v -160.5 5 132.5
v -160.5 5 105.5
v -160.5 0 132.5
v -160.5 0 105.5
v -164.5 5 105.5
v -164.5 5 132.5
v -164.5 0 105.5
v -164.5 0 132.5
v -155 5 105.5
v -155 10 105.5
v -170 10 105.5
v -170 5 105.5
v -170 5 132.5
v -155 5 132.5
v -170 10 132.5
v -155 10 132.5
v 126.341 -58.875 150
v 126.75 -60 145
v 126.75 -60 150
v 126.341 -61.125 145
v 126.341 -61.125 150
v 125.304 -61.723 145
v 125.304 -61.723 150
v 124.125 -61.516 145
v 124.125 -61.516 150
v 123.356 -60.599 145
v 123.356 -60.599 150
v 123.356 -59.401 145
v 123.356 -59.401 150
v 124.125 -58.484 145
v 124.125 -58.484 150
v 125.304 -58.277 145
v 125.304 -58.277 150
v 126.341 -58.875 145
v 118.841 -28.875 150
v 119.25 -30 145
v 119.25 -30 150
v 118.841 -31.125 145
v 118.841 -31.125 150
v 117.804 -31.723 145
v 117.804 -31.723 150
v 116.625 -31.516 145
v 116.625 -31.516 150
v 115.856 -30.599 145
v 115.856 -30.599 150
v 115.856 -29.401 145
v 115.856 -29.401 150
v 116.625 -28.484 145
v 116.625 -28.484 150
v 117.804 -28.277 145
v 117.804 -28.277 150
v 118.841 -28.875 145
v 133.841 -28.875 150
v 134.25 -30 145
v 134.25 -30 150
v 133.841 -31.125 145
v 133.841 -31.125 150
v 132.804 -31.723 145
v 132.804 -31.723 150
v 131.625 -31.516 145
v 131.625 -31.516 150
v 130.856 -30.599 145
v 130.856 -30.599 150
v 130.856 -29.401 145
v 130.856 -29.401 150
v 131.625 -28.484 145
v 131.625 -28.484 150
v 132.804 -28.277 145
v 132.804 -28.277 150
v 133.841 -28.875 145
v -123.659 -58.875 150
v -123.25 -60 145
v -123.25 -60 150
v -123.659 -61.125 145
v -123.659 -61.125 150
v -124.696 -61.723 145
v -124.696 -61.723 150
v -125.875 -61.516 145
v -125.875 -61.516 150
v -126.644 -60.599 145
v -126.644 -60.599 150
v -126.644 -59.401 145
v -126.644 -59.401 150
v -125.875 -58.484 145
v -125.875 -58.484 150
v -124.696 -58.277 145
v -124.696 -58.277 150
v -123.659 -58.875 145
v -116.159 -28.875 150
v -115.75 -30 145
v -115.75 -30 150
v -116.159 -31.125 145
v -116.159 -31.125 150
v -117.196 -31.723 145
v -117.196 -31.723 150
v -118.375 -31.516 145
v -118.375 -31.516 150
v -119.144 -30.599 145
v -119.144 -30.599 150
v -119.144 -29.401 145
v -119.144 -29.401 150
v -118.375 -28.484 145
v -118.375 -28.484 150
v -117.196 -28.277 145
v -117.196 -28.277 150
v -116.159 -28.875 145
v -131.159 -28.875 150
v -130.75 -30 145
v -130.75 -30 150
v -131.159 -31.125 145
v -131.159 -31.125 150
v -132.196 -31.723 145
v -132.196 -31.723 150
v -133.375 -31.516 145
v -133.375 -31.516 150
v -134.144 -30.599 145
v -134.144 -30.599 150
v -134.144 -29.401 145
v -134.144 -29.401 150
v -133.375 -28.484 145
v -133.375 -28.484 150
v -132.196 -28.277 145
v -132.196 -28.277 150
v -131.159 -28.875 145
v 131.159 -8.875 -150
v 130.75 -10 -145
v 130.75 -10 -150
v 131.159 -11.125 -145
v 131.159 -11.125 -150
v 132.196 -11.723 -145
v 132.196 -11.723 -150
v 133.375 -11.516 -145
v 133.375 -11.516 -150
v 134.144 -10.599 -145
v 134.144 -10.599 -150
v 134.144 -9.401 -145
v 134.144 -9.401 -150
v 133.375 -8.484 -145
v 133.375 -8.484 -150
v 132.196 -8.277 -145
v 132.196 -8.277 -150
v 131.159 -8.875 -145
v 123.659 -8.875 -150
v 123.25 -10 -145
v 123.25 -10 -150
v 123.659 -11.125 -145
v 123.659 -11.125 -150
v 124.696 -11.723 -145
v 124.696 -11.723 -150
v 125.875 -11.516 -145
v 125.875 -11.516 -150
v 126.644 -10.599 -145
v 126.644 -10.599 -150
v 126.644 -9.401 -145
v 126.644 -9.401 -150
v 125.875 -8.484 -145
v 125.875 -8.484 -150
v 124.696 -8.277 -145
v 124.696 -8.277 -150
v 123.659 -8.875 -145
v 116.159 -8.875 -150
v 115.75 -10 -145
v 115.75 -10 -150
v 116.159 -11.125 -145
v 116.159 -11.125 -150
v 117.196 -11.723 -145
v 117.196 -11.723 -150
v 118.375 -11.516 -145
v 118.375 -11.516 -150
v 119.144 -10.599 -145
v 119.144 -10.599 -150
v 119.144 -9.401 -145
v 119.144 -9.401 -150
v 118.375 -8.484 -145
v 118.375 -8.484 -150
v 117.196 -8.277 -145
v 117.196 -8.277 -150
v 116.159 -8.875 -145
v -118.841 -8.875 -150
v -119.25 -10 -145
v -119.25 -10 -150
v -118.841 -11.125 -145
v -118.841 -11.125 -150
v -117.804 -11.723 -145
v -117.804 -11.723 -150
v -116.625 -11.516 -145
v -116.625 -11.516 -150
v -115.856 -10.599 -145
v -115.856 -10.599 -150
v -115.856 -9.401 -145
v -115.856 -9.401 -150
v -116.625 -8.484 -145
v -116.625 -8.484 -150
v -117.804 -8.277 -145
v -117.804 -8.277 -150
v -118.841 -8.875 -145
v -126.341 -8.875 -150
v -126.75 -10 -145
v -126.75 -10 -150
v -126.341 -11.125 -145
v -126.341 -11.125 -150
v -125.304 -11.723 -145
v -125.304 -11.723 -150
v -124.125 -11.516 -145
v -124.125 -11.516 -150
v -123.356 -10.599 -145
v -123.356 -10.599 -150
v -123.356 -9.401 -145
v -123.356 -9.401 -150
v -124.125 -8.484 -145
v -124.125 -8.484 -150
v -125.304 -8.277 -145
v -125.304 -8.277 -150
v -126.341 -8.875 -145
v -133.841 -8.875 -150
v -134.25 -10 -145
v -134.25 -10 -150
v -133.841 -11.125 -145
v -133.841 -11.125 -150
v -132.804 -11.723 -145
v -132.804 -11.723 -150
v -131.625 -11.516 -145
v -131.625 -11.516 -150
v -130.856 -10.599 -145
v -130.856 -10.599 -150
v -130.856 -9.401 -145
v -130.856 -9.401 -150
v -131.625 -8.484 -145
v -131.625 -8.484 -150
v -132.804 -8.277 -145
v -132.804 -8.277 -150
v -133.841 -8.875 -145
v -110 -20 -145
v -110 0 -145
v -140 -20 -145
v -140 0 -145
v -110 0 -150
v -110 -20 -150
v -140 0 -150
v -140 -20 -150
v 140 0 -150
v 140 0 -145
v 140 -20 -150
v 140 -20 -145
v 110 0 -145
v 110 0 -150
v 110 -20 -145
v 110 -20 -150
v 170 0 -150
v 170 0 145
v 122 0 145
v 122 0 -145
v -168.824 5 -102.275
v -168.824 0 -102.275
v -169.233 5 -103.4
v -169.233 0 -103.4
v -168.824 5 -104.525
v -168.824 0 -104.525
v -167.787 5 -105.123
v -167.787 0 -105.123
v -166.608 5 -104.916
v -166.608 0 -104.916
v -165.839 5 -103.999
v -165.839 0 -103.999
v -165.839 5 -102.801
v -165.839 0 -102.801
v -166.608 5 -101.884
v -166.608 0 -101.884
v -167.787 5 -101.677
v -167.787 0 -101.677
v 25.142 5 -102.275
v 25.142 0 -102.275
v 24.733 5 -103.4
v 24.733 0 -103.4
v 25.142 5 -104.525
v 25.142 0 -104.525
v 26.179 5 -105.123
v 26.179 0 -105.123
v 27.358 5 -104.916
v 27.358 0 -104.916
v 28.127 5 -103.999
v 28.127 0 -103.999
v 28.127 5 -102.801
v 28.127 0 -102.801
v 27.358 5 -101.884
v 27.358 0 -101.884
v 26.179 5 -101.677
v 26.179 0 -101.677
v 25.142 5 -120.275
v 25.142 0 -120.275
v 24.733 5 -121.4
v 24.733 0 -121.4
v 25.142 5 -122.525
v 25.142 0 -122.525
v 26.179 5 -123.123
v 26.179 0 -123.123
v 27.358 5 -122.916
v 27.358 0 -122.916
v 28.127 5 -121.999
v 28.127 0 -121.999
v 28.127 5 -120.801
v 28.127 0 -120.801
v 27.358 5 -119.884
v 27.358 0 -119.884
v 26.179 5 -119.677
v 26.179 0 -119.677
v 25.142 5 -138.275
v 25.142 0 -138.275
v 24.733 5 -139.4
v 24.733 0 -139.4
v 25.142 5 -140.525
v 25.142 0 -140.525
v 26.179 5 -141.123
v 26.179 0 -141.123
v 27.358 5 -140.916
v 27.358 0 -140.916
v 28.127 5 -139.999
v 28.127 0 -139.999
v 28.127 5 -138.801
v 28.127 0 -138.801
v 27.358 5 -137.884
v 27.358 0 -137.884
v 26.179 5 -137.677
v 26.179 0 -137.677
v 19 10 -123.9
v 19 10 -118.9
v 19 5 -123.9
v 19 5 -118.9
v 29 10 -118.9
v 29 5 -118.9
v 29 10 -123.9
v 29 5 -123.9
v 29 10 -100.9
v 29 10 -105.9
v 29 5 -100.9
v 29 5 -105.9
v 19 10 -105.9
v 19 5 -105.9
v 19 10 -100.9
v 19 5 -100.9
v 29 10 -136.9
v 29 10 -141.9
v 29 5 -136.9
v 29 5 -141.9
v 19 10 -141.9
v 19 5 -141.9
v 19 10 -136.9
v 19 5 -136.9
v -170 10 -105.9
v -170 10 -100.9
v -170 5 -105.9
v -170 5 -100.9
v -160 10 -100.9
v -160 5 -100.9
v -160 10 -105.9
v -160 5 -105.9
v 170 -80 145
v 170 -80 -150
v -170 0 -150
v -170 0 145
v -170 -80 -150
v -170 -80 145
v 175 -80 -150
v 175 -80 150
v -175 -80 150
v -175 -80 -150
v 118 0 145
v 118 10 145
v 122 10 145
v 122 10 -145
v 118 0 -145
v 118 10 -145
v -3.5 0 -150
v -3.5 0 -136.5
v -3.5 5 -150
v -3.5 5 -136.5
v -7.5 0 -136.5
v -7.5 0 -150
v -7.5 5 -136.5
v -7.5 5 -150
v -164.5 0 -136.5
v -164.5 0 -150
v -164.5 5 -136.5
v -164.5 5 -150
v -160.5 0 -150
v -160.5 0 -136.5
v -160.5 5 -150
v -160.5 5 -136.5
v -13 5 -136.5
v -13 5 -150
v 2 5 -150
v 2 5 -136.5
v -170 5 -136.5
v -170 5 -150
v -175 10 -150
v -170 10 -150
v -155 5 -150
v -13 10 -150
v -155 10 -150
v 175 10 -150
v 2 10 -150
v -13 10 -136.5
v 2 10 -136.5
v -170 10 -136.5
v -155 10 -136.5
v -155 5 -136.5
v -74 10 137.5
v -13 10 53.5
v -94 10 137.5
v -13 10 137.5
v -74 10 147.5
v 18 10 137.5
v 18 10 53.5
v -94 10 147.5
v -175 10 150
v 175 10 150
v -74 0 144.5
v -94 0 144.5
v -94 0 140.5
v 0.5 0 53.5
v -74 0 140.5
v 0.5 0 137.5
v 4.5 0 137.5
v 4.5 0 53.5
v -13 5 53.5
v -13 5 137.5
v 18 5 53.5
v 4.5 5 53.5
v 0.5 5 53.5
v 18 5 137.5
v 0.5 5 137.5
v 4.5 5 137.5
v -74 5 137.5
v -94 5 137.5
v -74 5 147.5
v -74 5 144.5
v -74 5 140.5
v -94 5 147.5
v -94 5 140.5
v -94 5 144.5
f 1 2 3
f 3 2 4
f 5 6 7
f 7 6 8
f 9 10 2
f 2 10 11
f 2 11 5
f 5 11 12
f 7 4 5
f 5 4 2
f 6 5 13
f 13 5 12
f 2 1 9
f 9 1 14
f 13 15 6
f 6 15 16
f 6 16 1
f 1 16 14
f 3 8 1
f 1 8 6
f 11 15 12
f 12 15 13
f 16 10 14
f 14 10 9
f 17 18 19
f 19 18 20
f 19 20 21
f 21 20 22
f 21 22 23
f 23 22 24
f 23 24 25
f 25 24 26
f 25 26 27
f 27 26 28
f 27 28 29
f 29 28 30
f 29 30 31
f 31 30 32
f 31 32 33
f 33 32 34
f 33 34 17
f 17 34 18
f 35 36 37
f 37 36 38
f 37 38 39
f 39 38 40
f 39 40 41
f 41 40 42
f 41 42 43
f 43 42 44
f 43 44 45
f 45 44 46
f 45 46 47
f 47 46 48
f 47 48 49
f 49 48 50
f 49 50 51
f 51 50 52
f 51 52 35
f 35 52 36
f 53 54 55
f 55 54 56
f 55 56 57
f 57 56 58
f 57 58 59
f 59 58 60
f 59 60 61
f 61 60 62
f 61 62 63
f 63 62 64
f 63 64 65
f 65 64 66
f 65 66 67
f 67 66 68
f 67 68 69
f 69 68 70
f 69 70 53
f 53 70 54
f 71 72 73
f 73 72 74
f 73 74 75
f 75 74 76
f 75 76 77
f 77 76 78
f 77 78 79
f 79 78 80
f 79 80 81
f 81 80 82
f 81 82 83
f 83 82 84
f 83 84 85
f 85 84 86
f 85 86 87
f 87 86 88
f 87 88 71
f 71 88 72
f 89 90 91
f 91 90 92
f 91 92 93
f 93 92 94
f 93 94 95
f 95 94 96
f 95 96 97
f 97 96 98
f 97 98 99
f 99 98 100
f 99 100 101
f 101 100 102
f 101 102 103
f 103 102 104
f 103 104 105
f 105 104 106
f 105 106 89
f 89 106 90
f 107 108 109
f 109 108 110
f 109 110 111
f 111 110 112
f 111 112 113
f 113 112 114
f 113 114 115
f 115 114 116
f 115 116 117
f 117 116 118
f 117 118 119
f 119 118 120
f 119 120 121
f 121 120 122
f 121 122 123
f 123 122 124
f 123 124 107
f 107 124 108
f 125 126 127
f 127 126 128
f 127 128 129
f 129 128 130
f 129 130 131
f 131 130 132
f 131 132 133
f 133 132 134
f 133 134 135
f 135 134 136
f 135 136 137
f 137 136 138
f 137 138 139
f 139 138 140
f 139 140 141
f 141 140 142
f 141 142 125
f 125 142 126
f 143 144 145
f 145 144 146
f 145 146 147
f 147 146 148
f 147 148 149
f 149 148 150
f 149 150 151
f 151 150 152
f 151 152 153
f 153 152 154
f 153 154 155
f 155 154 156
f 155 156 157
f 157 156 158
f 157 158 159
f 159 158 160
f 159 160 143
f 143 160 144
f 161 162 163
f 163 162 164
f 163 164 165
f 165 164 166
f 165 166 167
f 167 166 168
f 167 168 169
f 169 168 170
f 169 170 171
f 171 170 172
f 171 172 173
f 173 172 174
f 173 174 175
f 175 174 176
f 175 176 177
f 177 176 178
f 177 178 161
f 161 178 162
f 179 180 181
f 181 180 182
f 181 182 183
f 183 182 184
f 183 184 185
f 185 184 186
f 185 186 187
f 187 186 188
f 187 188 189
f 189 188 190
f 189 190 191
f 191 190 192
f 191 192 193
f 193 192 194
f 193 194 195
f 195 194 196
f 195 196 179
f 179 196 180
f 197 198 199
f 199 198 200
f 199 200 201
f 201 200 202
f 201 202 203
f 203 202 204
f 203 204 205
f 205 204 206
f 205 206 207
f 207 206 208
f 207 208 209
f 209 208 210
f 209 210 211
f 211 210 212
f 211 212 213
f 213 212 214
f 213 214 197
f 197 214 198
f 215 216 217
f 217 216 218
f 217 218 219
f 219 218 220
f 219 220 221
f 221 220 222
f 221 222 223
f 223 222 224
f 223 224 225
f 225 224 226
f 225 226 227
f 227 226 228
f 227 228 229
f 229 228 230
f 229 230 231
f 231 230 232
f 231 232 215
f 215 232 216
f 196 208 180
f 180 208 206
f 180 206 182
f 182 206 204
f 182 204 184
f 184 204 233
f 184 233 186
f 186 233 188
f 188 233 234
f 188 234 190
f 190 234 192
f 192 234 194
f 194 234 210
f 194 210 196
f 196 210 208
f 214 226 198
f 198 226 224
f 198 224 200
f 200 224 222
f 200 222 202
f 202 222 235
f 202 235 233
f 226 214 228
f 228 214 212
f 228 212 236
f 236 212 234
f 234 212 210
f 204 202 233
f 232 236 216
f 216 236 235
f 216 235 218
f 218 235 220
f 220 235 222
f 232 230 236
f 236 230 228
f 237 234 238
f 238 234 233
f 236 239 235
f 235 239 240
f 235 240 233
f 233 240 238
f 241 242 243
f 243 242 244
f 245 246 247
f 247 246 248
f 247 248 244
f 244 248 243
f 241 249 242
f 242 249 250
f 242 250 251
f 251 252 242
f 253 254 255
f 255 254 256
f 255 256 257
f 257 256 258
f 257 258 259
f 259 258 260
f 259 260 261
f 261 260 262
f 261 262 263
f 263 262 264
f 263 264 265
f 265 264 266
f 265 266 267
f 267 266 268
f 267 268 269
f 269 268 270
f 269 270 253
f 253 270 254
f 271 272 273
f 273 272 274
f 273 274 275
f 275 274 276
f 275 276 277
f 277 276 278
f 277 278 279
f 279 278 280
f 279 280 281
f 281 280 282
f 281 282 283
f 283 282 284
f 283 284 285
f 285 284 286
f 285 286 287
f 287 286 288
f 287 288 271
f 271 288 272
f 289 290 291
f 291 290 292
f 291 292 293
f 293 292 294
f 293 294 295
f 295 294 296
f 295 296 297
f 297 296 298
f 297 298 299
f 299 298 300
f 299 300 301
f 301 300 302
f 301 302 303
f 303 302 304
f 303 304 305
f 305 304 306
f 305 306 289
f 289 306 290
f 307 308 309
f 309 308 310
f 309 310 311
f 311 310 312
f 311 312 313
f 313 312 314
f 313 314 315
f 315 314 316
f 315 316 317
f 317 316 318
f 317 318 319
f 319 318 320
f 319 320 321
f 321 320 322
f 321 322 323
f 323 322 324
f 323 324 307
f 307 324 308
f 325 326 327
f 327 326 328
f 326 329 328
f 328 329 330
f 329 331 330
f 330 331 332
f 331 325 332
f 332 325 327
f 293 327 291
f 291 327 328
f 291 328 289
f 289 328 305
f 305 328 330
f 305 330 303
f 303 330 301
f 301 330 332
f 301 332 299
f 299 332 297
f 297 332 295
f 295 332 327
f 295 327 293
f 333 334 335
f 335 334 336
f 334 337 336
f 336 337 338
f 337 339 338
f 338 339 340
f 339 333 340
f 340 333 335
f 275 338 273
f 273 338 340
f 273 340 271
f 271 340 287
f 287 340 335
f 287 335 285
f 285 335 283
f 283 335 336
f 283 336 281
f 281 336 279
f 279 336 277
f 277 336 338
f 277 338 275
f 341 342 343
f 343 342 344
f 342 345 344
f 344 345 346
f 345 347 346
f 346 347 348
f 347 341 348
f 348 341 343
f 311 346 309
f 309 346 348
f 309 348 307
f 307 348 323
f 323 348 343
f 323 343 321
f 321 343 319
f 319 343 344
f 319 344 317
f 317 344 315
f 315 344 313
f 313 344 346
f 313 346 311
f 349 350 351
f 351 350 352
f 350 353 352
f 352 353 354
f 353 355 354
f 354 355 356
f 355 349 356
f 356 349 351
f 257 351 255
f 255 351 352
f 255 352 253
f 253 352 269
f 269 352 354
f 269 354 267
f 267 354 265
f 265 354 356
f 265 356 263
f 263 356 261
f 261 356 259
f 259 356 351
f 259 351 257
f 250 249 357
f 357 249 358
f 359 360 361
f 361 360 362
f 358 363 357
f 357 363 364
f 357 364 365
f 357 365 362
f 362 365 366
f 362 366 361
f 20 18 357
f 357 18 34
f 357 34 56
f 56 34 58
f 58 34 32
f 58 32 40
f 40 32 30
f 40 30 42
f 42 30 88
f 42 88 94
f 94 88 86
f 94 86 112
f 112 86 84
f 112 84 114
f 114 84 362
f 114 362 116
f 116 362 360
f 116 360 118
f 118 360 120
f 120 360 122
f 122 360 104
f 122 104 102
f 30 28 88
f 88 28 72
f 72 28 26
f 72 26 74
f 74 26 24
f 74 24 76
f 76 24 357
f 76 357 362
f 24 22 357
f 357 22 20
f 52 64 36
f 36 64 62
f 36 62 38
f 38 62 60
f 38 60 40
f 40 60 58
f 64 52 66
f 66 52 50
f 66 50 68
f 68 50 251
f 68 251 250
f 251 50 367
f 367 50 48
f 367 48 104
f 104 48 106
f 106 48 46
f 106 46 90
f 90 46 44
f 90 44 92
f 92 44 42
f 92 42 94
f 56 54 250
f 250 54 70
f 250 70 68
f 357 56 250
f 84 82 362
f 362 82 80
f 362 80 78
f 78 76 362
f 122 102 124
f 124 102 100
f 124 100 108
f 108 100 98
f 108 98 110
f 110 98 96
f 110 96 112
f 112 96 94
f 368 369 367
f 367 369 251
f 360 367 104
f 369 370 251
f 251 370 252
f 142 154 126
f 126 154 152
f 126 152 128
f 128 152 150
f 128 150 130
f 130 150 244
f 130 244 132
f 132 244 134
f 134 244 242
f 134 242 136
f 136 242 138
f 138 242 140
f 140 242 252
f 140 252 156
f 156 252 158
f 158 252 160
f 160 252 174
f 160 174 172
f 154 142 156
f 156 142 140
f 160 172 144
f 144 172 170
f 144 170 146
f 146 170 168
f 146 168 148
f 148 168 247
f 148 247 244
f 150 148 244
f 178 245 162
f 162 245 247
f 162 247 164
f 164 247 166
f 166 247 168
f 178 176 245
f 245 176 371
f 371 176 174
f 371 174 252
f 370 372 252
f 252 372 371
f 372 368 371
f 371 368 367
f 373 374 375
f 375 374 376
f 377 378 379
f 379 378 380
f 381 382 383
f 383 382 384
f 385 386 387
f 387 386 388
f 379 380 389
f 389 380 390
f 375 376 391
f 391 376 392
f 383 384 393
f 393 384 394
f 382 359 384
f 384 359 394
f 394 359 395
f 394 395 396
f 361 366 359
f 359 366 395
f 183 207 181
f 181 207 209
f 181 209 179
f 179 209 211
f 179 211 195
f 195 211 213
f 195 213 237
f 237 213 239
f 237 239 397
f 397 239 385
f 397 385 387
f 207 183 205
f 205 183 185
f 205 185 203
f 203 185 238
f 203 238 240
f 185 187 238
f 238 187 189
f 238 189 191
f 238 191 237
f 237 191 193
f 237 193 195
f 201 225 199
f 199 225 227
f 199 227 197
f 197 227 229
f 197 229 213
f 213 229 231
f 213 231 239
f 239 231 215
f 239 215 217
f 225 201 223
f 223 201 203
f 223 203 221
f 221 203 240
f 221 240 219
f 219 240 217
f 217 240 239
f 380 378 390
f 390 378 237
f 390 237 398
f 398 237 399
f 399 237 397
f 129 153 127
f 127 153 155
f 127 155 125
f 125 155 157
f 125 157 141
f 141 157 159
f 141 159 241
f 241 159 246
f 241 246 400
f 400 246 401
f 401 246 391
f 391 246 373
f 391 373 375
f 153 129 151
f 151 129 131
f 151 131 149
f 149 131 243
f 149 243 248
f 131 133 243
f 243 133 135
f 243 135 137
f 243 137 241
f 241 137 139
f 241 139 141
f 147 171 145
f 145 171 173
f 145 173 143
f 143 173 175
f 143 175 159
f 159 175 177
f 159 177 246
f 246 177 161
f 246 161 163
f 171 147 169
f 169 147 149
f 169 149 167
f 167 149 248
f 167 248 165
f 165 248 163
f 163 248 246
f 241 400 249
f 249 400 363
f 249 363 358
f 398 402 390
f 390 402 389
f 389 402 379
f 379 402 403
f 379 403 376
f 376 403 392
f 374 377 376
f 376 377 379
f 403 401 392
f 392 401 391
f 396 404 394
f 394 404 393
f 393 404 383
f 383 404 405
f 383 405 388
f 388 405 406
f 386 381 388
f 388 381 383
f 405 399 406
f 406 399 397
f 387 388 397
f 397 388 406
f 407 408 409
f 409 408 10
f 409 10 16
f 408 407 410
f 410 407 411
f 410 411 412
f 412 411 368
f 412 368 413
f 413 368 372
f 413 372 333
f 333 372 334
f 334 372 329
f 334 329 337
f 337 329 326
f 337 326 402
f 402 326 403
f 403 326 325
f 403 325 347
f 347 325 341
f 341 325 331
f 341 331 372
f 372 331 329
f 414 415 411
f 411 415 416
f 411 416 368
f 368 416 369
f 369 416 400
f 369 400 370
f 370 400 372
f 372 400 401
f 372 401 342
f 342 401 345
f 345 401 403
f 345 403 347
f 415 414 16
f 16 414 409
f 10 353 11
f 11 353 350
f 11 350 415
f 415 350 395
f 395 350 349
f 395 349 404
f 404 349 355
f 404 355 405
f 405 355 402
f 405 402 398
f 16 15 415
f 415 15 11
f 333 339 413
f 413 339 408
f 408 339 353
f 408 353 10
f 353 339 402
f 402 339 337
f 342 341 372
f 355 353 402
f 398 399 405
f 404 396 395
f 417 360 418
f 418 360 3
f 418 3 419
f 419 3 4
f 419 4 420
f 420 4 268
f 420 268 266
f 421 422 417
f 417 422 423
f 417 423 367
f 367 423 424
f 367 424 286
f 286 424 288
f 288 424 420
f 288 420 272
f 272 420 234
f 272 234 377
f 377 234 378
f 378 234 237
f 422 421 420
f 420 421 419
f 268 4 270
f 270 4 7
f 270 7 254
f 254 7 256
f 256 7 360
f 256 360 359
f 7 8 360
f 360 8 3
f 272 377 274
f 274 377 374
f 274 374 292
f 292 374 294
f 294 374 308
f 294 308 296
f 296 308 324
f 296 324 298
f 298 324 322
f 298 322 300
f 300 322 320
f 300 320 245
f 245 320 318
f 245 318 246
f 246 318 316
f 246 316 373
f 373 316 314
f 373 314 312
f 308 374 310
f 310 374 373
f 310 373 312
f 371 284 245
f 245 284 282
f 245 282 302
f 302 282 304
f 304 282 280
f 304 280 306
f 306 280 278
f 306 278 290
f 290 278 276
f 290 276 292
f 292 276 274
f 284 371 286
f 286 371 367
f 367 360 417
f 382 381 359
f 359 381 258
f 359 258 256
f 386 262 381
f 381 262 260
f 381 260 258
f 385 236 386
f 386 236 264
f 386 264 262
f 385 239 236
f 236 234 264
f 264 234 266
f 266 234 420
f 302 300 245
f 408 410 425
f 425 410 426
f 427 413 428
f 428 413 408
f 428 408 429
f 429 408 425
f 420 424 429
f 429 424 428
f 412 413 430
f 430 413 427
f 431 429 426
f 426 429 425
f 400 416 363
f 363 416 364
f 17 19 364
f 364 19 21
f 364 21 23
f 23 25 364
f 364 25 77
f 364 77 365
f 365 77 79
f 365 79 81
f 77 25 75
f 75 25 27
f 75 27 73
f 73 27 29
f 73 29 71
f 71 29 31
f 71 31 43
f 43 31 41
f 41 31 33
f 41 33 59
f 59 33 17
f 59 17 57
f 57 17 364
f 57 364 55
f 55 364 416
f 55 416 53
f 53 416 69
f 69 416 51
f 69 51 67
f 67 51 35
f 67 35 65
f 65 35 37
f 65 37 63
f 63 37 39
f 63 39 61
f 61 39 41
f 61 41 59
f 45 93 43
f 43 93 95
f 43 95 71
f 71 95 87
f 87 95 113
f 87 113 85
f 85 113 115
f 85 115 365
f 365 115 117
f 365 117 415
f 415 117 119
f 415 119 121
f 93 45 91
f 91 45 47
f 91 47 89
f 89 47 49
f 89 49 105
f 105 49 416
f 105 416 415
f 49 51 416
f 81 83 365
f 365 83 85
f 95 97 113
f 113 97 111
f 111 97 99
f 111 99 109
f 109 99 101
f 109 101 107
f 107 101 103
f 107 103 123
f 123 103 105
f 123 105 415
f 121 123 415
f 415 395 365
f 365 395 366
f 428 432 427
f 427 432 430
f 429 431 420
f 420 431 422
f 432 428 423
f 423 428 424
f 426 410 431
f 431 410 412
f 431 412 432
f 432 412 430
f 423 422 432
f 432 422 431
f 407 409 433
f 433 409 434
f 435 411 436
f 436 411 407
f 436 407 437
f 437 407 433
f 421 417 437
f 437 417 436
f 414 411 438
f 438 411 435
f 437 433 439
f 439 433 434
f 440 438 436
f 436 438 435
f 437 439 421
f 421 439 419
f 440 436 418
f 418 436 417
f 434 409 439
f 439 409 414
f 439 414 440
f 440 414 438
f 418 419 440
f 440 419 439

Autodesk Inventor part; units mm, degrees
ref_plane "YZ Plane" through (0, 0, 0) normal (1, 0, 0) x (0, 1, 0)
ref_plane "XZ Plane" through (0, 0, 0) normal (0, 1, 0) x (-1, 0, 0)
ref_plane "XY Plane" through (0, 0, 0) normal (0, 0, 1) x (1, 0, 0)
sketch "Sketch2" plane through (0, 0, 0) normal (0, 1, 0) x (-1, 0, 0)
  line L0 (-175, 150) -> (175, 150)
  line L1 (175, 150) -> (175, -150)
  line L2 (175, -150) -> (-175, -150)
  line L3 (-175, -150) -> (-175, 150)
  line L4 (-175, 150) -> (175, -150) construction
  line L5 (175, 150) -> (-175, -150) construction
  point P0 (0, 0)
  dimension "d6" = 350
  dimension "d7" = 300
extrude "Extrusion1" add sketch "Sketch2" along normal blind 10
sketch "Sketch4" plane through (0, 10, 0) normal (0, 1, 0) x (1, 0, 0)
  line L0 (-175, -150) -> (175, -150) projected
  line L1 (-170, -132.5) -> (-155, -132.5)
  line L2 (-155, -132.5) -> (-155, -105.5)
  line L3 (-155, -105.5) -> (-170, -105.5)
  line L4 (-170, -105.5) -> (-170, -132.5)
  point P0 (0, 0)
  point P1 (-170, -142.5)
  point P2 (-13, -145)
  point P3 (-170, -142.5)
  dimension "d122" = 15
  dimension "d123" = 27
sketch "Sketch5" plane through (0, 10, 0) normal (0, 1, 0) x (1, 0, 0)
  line L0 (-155, -117.5) -> (-155, -142.5) projected
  line L1 (-175, -150) -> (175, -150) projected
  line L2 (-13, -137.5) -> (18, -137.5)
  line L3 (18, -137.5) -> (18, -53.5)
  line L4 (18, -53.5) -> (-13, -53.5)
  line L5 (-13, -137.5) -> (-13, -53.5)
  point P0 (0, 0)
  dimension "d24" = 31
  dimension "d25" = 84
extrude "Extrusion3" cut sketch "Sketch5" against normal blind 5
sketch "Sketch7" plane through (0, 10, 0) normal (0, 1, 0) x (1, 0, 0)
  line L0 (-13, -53.5) -> (18, -53.5) projected
  line L1 (175, 150) -> (-175, 150) projected
  line L2 (-170, 150) -> (-155, 150)
  line L3 (-155, 150) -> (-155, 136.5)
  line L4 (-155, 136.5) -> (-170, 136.5)
  line L5 (-170, 136.5) -> (-170, 150)
  line L6 (-13, 136.5) -> (2, 136.5)
  line L7 (2, 136.5) -> (2, 150)
  line L8 (2, 150) -> (-13, 150)
  line L9 (-13, 150) -> (-13, 136.5)
  point P0 (0, 0)
  point P1 (-13, -63.5)
  point P2 (-170, -117.5)
  point P3 (-155, 150)
  point P4 (-170, 150)
  dimension "d34" = 15
  dimension "d35" = 13.5
  dimension "d39" = 15
  dimension "d53" = 13.5
extrude "Extrusion6" cut sketch "Sketch7" against normal blind 5
sketch "Sketch8" plane through (0, 5, 0) normal (0, 1, 0) x (1, 0, 0)
  line L0 (2, 150) -> (2, 136.5) projected
  line L1 (-13, 136.5) -> (-13, 150) projected
  line L2 (-3.5, 136.5) -> (-7.5, 136.5)
  line L3 (-7.5, 136.5) -> (-7.5, 150)
  line L4 (-7.5, 150) -> (-3.5, 150)
  line L5 (-3.5, 150) -> (-3.5, 136.5)
  line L6 (-3.5, 136.5) -> (-7.5, 150) construction
  line L7 (-7.5, 136.5) -> (-3.5, 150) construction
  line L8 (-170, 136.5) -> (-170, 150) projected
  line L9 (-170, 143.25) -> (-155, 143.25)
  line L10 (-155, 150) -> (-155, 136.5) projected
  line L11 (-164.5, 136.5) -> (-160.5, 136.5)
  line L12 (-160.5, 136.5) -> (-160.5, 150)
  line L13 (-160.5, 150) -> (-164.5, 150)
  line L14 (-164.5, 150) -> (-164.5, 136.5)
  line L15 (-164.5, 136.5) -> (-160.5, 150) construction
  line L16 (-160.5, 136.5) -> (-164.5, 150) construction
  point P0 (0, 0)
  point P1 (-5.5, 143.25)
  point P2 (-162.5, 143.25)
  dimension "d42" = 4
  dimension "d43" = 13.5
  dimension "d44" = 4
  dimension "d45" = 13.5
extrude "Extrusion7" cut sketch "Sketch8" against normal through all
sketch "Sketch9" plane through (0, 10, 0) normal (0, 1, 0) x (1, 0, 0)
  point P0 (0, 0)
sketch "Sketch12" plane through (0, 10, 0) normal (0, 1, 0) x (1, 0, 0)
  line L0 (-175, -150) -> (175, -150) projected
  line L1 (175, -150) -> (175, -145)
  line L2 (175, -150) -> (175, 150) projected
  line L3 (175, -145) -> (120, -145)
  line L4 (118, 145) -> (122, 145)
  line L5 (122, 145) -> (122, -145)
  line L6 (122, -145) -> (118, -145)
  line L7 (118, -145) -> (118, 145)
  line L8 (118, 145) -> (122, -145) construction
  line L9 (122, 145) -> (118, -145) construction
  point P0 (0, 0)
  point P1 (120, 0)
  dimension "d57" = 5
  dimension "d58" = 55
  dimension "d59" = 4
extrude "Extrusion11" cut sketch "Sketch12" against normal blind 10
sketch "Sketch13" plane through (0, 0, 0) normal (0, -1, 0) x (1, 0, 0)
  line L0 (-175, 150) -> (175, 150) projected
  line L1 (175, -150) -> (170, -150)
  line L2 (170, -150) -> (170, 150)
  line L3 (170, 150) -> (175, 150)
  line L4 (175, 150) -> (175, -150)
  line L5 (-175, -150) -> (-175, 150) projected
  line L6 (175, 150) -> (-175, 150)
  line L7 (-175, 150) -> (-175, 145)
  line L8 (-175, 145) -> (175, 145)
  line L9 (175, 145) -> (175, 150)
  line L10 (-175, 150) -> (-170, 150)
  line L11 (-170, 150) -> (-170, -150)
  line L12 (-170, -150) -> (-175, -150)
  line L13 (-175, -150) -> (-175, 150)
  point P0 (0, 0)
  point P1 (175, 150)
  point P2 (-170, 145)
  point P3 (170, 145)
  dimension "d62" = 5
  dimension "d63" = 5
  dimension "d64" = 5
extrude "Extrusion12" add sketch "Sketch13" along normal blind 80
sketch "Sketch14" plane through (0, 10, 0) normal (0, 1, 0) x (1, 0, 0)
  line L0 (2, 150) -> (2, 136.5) projected
  line L1 (2, 150) -> (19, 150)
  line L2 (170, 150) -> (-3.5, 150) projected
  line L3 (19, 150) -> (19, 141.9)
  line L4 (19, 141.9) -> (29, 141.9)
  line L5 (29, 141.9) -> (29, 136.9)
  line L6 (29, 136.9) -> (19, 136.9)
  line L7 (19, 136.9) -> (19, 141.9)
  line L8 (19, 123.9) -> (29, 123.9)
  line L9 (29, 123.9) -> (29, 118.9)
  line L10 (29, 118.9) -> (19, 118.9)
  line L11 (19, 118.9) -> (19, 123.9)
  line L12 (19, 121.4) -> (19, 105.9)
  line L13 (19, 105.9) -> (29, 105.9)
  line L14 (29, 105.9) -> (29, 100.9)
  line L15 (29, 100.9) -> (19, 100.9)
  line L16 (19, 100.9) -> (19, 105.9)
  line L17 (-170, 150) -> (-170, -145) projected
  line L18 (-170, 105.9) -> (-160, 105.9)
  line L19 (-160, 105.9) -> (-160, 100.9)
  line L20 (-160, 100.9) -> (-170, 100.9)
  line L21 (-170, 100.9) -> (-170, 105.9)
  point P0 (0, 0)
  dimension "d67" = 17
  dimension "d68" = 8.1
  dimension "d70" = 5
  dimension "d72" = 5
  dimension "d73" = 15.5
  dimension "d74" = 5
  dimension "d75" = 10
extrude "Extrusion13" cut sketch "Sketch14" against normal blind 5
sketch "Sketch15" plane through (0, 10, 0) normal (0, 1, 0) x (1, 0, 0)
  line L0 (29, 123.9) -> (29, 118.9) projected
  line L1 (29, 121.4) -> (26.483, 121.4)
  line L2 (29, 105.9) -> (29, 100.9) projected
  line L3 (29, 103.4) -> (26.483, 103.4)
  line L4 (29, 141.9) -> (29, 136.9) projected
  line L5 (29, 139.4) -> (26.483, 139.4)
  line L6 (-170, 150) -> (-170, -145) projected
  line L7 (-170, 103.4) -> (-170, 105.917)
  line L8 (-170, 103.4) -> (-167.483, 103.4)
  point P0 (0, 0)
  dimension "d78" = 2.517
  dimension "d79" = 2.517
  dimension "d80" = 2.517
  dimension "d81" = 2.517
  dimension "d82" = 2.517
hole "Hole1" at (26.483, 10, -139.4) at (26.483, 10, -121.4) at (26.483, 10, -103.4) at (-167.483, 10, -103.4) direction (0, -1, 0) diameter 3.5 end through all
sketch "Sketch16" plane through (0, 0, 0) normal (0, -1, 0) x (1, 0, 0)
  line L0 (170, -150) -> (170, 145) projected
  line L1 (170, -150) -> (140, -150)
  line L2 (175, -150) -> (2, -150) projected
  line L3 (140, -150) -> (110, -150)
  line L4 (110, -150) -> (110, -145)
  line L5 (110, -145) -> (140, -145)
  line L6 (140, -145) -> (140, -150)
  line L7 (-170, 145) -> (-170, -150) projected
  line L8 (-170, -150) -> (-140, -150)
  line L9 (-7.5, -150) -> (-160.5, -150) projected
  line L10 (-140, -150) -> (-110, -150)
  line L11 (-110, -150) -> (-110, -145)
  line L12 (-110, -145) -> (-140, -145)
  line L13 (-140, -145) -> (-140, -150)
  point P0 (0, 0)
  dimension "d90" = 30
  dimension "d91" = 30
  dimension "d92" = 5
  dimension "d93" = 30
  dimension "d94" = 30
extrude "Extrusion14" add sketch "Sketch16" along normal blind 20
sketch "Sketch17" plane through (-13, 10, -150) normal (0, 0, -1) x (-1, 0, 0)
  line L0 (-153, -10) -> (-153, -30) projected
  line L1 (-153, -20) -> (-123, -20)
  line L2 (-123, -10) -> (-123, -30) projected
  line L3 (97, -10) -> (97, -30) projected
  line L4 (97, -20) -> (127, -20)
  line L5 (127, -10) -> (127, -30) projected
  point P0 (-13, -10)
  point P1 (-138, -20)
  point P2 (-145.5, -20)
  point P3 (-130.5, -20)
  point P4 (112, -20)
  point P5 (104.5, -20)
  point P6 (119.5, -20)
hole "Hole2" at (-132.5, -10, -150) at (-125, -10, -150) at (-117.5, -10, -150) at (117.5, -10, -150) at (125, -10, -150) at (132.5, -10, -150) direction (0, 0, 1) diameter 3.5 depth 5
sketch "Sketch18" plane through (-175, 10, 150) normal (0, 0, 1) x (1, 0, 0)
  line L0 (350, -90) -> (350, 0) projected
  line L1 (350, 0) -> (300, 0)
  line L2 (0, 0) -> (350, 0) projected
  line L3 (300, 0) -> (300, -70)
  line L4 (0, 0) -> (50, 0)
  line L5 (50, 0) -> (50, -70)
  point P0 (175, -10)
  point P1 (292.5, -40)
  point P2 (307.5, -40)
  point P3 (57.5, -40)
  point P4 (42.5, -40)
  dimension "d104" = 50
  dimension "d105" = 70
  dimension "d106" = 50
  dimension "d107" = 70
hole "Hole4" at (-132.5, -30, 150) at (-117.5, -30, 150) at (-125, -60, 150) at (132.5, -30, 150) at (117.5, -30, 150) at (125, -60, 150) direction (0, 0, -1) diameter 3.5 depth 5
extrude "Extrusion15" cut sketch "Sketch4" against normal blind 5
sketch "Sketch19" plane through (0, 10, 0) normal (0, 1, 0) x (1, 0, 0)
  line L0 (-170, -132.5) -> (-170, -105.5) projected
  line L1 (-170, -119) -> (-155, -119)
  line L2 (-155, -105.5) -> (-155, -132.5) projected
  line L3 (-170, -105.5) -> (-155, -105.5) projected
  line L4 (-164.5, -132.5) -> (-160.5, -132.5)
  line L5 (-160.5, -132.5) -> (-160.5, -105.5)
  line L6 (-160.5, -105.5) -> (-164.5, -105.5)
  line L7 (-164.5, -105.5) -> (-164.5, -132.5)
  line L8 (-164.5, -132.5) -> (-160.5, -105.5) construction
  line L9 (-160.5, -132.5) -> (-164.5, -105.5) construction
  point P0 (0, 0)
  point P1 (-162.5, -119)
  dimension "d126" = 4
extrude "Extrusion16" cut sketch "Sketch19" against normal blind 10 contours L7 L3 L5 L1 | L1 L5 L4 L7
sketch "Sketch20" plane through (0, 10, 0) normal (0, 1, 0) x (1, 0, 0)
  line L0 (-13, -137.5) -> (-13, -53.5) projected
  line L1 (-13, -53.5) -> (18, -53.5) projected
  line L2 (4.5, -137.5) -> (0.5, -137.5)
  line L3 (0.5, -137.5) -> (0.5, -53.5)
  line L4 (0.5, -53.5) -> (4.5, -53.5)
  line L5 (4.5, -53.5) -> (4.5, -137.5)
  line L6 (4.5, -137.5) -> (0.5, -53.5) construction
  line L7 (0.5, -137.5) -> (4.5, -53.5) construction
  point P0 (0, 0)
  point P1 (2.5, -95.5)
  dimension "d129" = 4
extrude "Extrusion17" cut sketch "Sketch20" against normal blind 10
sketch "Sketch21" plane through (0, 10, 0) normal (0, 1, 0) x (1, 0, 0)
  line L0 (18, -137.5) -> (-13, -137.5) projected
  line L1 (-13, -137.5) -> (-155, -137.5)
  line L2 (-84, -137.5) -> (-84, -142.5)
  line L3 (-74, -147.5) -> (-94, -147.5)
  line L4 (-94, -147.5) -> (-94, -137.5)
  line L5 (-94, -137.5) -> (-74, -137.5)
  line L6 (-74, -137.5) -> (-74, -147.5)
  line L7 (-74, -147.5) -> (-94, -137.5) construction
  line L8 (-94, -147.5) -> (-74, -137.5) construction
  point P0 (0, 0)
  dimension "d132" = 5
  dimension "d133" = 20
extrude "Extrusion18" cut sketch "Sketch21" against normal blind 5
sketch "Sketch22" plane through (0, 10, 0) normal (0, 1, 0) x (1, 0, 0)
  line L0 (-94, -147.5) -> (-94, -137.5) projected
  line L1 (-94, -142.5) -> (-74, -142.5)
  line L2 (-74, -137.5) -> (-74, -147.5) projected
  line L3 (-74, -144.5) -> (-94, -144.5)
  line L4 (-94, -144.5) -> (-94, -140.5)
  line L5 (-94, -140.5) -> (-74, -140.5)
  line L6 (-74, -140.5) -> (-74, -144.5)
  line L7 (-74, -144.5) -> (-94, -140.5) construction
  line L8 (-94, -144.5) -> (-74, -140.5) construction
  point P0 (0, 0)
  point P1 (-84, -142.5)
  dimension "d136" = 4
extrude "Extrusion19" cut sketch "Sketch22" against normal blind 10
properties part number "Venstre"
